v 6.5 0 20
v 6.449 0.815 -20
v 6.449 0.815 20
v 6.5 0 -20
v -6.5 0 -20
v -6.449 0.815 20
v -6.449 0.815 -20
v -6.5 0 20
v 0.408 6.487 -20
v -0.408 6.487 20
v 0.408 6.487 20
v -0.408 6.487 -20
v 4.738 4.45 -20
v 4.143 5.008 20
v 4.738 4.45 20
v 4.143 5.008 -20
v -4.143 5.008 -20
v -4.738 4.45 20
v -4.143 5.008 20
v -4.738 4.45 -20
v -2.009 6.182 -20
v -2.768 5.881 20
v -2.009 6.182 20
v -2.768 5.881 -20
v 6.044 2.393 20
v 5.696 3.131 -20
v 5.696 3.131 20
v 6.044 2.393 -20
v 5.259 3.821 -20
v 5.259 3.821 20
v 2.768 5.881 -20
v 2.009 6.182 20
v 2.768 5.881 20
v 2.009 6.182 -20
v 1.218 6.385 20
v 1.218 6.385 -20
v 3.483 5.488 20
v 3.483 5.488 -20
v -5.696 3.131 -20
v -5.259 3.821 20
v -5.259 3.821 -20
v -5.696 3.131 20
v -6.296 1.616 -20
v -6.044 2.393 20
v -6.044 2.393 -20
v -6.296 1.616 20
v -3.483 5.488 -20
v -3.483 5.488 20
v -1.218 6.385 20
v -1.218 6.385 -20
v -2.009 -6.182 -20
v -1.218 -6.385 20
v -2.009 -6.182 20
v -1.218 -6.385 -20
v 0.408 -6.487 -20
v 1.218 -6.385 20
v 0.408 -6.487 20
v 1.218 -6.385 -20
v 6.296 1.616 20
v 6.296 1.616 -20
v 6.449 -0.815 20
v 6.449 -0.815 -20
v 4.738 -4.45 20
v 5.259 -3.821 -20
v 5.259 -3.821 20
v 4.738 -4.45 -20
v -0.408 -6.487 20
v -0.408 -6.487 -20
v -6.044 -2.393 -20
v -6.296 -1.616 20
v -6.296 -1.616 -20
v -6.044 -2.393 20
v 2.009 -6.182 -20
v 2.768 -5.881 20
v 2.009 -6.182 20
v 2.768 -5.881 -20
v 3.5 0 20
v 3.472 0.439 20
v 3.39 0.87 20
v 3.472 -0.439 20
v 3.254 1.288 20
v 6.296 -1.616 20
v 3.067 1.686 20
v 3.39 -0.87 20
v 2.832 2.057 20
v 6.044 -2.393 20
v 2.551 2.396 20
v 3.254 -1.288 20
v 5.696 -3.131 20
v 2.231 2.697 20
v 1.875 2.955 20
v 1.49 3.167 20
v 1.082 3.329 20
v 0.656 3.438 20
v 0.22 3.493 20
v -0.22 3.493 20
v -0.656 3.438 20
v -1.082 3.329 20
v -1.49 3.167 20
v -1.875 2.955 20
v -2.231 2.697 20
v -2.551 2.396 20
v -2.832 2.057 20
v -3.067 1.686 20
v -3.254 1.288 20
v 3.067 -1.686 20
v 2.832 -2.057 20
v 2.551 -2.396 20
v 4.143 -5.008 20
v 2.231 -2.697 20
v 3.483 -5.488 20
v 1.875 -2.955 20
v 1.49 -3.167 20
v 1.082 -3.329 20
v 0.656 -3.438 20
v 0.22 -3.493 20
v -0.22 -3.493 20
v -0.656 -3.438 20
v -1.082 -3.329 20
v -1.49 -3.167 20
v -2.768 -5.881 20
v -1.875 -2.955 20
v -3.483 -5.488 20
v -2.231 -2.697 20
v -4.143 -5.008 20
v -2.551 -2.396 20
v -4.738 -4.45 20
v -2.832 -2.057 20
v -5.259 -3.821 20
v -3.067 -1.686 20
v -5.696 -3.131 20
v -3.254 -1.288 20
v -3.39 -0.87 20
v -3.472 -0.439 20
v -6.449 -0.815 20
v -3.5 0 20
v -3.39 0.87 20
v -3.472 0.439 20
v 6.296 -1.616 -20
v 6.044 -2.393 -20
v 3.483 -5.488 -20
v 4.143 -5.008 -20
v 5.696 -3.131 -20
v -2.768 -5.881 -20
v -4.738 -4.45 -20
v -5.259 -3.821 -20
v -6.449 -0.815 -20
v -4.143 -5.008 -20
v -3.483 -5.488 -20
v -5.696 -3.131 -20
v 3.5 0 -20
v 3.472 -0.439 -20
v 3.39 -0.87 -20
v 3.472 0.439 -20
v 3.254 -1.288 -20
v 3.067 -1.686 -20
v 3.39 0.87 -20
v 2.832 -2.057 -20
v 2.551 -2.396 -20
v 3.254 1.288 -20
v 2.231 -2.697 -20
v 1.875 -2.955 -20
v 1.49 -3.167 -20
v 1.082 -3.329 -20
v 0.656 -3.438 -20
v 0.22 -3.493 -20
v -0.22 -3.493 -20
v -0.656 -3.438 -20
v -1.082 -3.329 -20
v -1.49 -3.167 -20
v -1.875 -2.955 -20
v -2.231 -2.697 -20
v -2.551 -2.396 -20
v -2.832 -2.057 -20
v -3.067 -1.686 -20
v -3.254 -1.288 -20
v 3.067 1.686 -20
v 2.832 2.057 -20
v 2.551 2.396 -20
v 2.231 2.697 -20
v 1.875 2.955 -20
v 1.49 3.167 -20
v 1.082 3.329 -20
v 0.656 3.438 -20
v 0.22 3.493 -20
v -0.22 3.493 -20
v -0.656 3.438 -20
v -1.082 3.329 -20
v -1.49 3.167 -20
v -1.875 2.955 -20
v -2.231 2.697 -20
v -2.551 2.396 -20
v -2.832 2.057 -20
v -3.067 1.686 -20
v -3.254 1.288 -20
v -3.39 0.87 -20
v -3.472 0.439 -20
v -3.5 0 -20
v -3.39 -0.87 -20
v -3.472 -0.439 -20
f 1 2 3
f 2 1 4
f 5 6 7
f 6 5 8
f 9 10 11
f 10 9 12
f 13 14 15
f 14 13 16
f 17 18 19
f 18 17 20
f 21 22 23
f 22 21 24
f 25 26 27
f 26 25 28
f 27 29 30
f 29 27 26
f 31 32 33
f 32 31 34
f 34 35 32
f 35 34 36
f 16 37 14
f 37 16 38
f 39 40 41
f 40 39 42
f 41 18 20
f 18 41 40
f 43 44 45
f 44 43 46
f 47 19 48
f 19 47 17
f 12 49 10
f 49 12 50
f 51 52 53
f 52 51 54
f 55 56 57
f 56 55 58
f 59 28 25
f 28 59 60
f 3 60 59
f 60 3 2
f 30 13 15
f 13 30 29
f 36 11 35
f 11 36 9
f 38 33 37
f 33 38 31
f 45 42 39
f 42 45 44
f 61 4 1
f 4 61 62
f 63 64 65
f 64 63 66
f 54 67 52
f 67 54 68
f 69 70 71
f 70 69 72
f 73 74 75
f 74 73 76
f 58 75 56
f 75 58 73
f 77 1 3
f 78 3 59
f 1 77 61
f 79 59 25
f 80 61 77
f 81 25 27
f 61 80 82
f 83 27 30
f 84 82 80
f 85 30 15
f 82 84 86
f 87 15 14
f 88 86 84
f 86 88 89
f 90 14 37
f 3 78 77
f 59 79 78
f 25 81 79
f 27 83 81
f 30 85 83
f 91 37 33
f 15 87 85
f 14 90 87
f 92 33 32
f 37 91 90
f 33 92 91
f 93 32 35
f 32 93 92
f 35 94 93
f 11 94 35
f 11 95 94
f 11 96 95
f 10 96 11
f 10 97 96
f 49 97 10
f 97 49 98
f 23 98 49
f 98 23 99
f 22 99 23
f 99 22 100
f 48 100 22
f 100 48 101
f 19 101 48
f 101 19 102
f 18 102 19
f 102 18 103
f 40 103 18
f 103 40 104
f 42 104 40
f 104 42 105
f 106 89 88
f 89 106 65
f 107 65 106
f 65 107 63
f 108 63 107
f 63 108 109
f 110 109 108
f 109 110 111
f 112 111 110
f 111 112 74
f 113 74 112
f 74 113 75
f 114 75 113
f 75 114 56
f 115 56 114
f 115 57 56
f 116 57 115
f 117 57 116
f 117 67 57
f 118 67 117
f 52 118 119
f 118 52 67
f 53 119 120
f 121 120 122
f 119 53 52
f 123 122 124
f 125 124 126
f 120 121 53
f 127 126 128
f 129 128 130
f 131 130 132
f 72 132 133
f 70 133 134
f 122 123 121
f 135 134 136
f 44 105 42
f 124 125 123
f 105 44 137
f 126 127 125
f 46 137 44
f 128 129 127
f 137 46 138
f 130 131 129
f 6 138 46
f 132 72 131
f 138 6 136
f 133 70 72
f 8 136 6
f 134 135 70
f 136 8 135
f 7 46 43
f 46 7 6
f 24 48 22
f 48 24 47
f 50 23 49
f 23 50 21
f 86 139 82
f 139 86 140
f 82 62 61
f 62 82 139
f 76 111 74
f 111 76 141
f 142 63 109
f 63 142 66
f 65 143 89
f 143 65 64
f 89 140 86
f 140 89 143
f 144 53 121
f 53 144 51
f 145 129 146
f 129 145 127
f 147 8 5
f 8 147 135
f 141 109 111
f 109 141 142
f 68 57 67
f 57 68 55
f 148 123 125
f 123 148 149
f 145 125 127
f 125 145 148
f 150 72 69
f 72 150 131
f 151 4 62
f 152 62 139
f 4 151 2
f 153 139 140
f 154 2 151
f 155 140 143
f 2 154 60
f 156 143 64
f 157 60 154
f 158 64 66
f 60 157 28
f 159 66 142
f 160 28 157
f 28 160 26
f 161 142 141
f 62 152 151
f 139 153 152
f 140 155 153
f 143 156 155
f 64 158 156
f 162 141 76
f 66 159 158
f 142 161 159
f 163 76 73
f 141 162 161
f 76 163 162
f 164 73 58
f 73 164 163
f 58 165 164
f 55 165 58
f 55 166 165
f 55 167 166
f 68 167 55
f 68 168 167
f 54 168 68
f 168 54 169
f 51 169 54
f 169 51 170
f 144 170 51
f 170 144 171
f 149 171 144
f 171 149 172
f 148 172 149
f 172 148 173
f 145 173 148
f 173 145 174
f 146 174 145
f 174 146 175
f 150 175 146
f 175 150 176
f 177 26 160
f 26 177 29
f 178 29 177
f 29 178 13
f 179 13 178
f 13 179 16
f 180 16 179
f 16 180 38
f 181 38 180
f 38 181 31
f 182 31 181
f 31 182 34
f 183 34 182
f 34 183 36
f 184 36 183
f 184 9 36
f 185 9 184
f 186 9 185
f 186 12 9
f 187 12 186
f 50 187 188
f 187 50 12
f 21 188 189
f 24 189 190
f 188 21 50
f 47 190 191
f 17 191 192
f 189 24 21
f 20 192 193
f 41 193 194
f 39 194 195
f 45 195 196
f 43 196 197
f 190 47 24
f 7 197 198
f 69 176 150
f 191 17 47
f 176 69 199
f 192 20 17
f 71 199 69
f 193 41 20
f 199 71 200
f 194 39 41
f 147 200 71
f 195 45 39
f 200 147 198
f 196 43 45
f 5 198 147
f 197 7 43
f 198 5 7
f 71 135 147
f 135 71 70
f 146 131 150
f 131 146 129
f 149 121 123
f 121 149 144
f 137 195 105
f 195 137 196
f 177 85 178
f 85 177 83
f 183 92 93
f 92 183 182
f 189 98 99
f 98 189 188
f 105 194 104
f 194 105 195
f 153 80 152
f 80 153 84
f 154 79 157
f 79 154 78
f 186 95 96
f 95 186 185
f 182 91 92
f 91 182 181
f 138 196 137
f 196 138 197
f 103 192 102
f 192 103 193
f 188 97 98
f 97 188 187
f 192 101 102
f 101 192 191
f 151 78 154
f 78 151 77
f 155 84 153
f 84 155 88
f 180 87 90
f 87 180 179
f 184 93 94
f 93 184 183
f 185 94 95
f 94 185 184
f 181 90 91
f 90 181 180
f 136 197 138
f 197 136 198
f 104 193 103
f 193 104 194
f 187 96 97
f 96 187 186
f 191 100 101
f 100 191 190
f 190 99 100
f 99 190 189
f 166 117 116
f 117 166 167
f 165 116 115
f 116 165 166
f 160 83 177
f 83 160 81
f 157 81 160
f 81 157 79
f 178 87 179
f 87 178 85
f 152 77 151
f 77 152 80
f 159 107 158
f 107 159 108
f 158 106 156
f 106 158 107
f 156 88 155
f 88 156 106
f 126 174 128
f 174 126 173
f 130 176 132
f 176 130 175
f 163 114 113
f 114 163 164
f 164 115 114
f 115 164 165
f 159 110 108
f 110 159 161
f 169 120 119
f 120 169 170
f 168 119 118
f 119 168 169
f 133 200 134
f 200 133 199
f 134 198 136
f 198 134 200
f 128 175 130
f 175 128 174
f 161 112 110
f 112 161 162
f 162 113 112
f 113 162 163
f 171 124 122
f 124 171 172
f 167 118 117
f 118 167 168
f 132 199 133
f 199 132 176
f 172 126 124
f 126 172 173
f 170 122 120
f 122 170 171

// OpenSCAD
$fn = 50;


difference() {
	union() {
		translate(v = [0, 0, -20.0000000000]) {
			cylinder(h = 40, r = 6.5000000000);
		}
	}
	union() {
		translate(v = [0, 0, -100.0000000000]) {
			cylinder(h = 200, r = 3.5000000000);
		}
	}
}
